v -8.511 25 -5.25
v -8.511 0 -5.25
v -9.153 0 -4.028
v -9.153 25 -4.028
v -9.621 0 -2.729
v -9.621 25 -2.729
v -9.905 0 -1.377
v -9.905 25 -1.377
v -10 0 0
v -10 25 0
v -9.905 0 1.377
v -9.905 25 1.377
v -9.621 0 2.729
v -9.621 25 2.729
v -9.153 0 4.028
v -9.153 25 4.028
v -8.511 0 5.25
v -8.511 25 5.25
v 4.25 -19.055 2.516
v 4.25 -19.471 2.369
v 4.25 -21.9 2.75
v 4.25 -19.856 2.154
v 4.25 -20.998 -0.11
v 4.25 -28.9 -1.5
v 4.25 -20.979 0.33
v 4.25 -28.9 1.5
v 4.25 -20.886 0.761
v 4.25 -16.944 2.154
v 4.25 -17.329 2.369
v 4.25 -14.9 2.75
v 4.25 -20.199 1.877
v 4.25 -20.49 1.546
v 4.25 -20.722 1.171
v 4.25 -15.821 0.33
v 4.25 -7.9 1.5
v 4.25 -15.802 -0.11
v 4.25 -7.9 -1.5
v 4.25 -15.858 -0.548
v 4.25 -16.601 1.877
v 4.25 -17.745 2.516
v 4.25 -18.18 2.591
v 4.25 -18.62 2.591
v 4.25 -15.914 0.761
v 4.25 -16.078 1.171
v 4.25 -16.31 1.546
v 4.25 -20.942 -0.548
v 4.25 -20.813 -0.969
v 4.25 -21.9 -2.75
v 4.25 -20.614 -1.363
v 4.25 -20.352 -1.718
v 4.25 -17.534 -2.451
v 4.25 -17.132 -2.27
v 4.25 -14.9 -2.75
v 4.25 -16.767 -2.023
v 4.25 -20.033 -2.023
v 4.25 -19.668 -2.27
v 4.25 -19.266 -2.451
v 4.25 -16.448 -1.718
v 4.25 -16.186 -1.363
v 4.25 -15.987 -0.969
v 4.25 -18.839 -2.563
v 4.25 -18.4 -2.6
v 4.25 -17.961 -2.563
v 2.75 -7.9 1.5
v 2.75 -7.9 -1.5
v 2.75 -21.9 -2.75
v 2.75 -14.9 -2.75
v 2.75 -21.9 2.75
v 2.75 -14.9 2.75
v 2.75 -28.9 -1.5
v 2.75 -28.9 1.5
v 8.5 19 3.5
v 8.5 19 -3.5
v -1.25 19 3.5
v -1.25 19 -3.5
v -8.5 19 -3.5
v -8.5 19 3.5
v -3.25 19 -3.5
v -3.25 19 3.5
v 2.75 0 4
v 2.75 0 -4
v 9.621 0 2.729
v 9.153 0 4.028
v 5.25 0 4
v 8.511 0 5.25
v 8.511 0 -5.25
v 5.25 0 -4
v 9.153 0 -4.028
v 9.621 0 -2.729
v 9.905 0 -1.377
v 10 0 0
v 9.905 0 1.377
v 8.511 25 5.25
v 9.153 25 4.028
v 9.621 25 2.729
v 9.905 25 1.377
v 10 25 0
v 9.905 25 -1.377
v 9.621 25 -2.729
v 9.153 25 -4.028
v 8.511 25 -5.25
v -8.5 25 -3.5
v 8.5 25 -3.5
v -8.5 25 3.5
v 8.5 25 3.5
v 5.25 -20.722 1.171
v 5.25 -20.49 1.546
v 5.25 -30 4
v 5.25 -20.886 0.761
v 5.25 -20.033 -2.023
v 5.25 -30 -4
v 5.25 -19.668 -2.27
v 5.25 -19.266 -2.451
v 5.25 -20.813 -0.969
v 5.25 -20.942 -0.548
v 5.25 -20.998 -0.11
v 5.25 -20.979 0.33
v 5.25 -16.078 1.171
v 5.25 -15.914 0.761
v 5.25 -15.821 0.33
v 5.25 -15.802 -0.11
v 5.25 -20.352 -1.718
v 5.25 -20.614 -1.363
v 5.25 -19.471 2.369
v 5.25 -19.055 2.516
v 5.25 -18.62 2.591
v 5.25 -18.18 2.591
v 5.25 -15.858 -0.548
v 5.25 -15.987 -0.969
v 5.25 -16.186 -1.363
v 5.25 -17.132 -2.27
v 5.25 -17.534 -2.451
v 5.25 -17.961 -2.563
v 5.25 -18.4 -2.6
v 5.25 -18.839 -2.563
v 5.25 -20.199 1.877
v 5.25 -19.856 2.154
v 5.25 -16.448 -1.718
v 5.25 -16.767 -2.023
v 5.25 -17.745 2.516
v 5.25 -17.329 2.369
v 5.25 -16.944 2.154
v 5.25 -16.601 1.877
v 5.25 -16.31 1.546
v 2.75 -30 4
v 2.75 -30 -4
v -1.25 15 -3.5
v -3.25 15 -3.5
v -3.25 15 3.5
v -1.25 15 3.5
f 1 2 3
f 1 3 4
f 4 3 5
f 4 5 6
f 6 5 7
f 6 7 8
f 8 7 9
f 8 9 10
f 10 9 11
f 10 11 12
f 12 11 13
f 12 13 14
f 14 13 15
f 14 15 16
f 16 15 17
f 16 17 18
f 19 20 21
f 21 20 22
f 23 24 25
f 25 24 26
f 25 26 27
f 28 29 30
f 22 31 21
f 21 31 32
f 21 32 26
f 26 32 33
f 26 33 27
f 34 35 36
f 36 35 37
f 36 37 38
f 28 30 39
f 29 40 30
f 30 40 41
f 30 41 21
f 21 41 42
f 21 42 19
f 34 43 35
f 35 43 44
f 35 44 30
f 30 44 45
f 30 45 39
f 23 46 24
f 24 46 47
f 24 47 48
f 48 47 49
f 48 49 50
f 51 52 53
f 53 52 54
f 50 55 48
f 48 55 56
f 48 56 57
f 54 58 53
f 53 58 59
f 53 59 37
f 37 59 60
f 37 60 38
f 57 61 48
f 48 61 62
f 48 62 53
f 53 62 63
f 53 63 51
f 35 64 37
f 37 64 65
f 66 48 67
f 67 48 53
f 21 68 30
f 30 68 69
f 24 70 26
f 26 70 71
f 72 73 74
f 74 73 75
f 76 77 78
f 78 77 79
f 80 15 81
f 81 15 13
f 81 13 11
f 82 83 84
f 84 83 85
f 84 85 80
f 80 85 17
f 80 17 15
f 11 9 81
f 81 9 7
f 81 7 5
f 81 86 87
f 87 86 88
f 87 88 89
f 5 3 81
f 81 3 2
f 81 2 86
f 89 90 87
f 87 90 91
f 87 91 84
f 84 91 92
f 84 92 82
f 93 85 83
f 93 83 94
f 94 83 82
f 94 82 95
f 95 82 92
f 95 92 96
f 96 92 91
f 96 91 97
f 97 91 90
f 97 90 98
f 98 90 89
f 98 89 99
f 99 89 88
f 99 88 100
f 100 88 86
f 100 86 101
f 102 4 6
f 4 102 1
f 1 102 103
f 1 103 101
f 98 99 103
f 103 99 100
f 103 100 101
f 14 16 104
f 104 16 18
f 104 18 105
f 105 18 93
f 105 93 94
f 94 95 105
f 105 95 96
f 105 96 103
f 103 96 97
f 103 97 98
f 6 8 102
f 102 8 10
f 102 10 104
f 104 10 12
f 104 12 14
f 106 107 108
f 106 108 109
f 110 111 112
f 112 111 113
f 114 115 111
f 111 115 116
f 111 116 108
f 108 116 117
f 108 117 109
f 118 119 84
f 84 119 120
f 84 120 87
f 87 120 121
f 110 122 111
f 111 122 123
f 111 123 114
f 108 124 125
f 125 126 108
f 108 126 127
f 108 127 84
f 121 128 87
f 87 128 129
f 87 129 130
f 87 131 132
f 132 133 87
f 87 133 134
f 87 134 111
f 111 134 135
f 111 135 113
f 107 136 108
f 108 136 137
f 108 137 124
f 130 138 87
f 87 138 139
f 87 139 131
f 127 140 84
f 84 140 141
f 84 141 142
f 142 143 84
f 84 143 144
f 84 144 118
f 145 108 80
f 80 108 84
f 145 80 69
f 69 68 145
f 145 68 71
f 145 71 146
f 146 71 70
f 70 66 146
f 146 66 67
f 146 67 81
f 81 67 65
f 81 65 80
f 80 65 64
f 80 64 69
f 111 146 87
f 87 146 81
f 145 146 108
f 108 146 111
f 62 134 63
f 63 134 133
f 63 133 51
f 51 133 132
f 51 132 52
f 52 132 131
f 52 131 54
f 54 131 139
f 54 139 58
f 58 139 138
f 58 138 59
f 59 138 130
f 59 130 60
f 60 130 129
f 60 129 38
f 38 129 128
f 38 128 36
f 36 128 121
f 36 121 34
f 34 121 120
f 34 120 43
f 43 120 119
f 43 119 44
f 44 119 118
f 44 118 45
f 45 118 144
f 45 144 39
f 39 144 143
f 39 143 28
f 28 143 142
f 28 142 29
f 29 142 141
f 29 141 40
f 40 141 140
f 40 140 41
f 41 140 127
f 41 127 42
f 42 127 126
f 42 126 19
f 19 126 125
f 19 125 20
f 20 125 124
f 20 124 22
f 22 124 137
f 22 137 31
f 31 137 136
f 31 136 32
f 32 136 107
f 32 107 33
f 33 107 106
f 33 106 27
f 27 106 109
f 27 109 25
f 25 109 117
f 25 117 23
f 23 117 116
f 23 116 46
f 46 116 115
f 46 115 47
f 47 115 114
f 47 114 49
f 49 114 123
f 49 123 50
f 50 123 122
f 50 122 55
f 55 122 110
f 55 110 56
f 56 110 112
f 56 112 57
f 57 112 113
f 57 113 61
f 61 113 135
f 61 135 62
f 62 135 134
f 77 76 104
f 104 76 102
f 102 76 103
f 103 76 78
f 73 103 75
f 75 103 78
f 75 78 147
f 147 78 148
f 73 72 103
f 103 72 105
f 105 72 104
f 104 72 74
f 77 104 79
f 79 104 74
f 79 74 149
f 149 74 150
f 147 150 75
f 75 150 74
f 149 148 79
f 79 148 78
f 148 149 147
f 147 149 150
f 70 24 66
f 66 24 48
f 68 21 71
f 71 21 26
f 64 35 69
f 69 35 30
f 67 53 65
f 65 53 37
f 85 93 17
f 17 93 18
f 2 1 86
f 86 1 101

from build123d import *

# Parameters (mm, degrees)
SKETCH3_R           = 10
BOSS_EXTRUDE1_DEPTH = 25
SKETCH4_W           = 2.5
SKETCH4_H           = 8
BOSS_EXTRUDE2_DEPTH = 30
CUT_EXTRUDE1_REACH  = 37.108
SKETCH5_R           = 2.6
SKETCH6_W           = 5.5
SKETCH6_H           = 21
CUT_EXTRUDE2_DEPTH  = 1.5
SKETCH7_W           = 17
SKETCH7_H           = 7
CUT_EXTRUDE3_DEPTH  = 6
SKETCH8_W           = 2
SKETCH8_H           = 7
CUT_EXTRUDE4_DEPTH  = 4
BOSS_EXTRUDE3_DEPTH = 1.5
CUT_EXTRUDE5_REACH  = 35.166


with BuildPart() as part:
    # Sketch3 → Boss-Extrude1 (new body)
    with BuildSketch(Plane(origin=(0, 0, 0), x_dir=(1, 0, 0), z_dir=(0, 1, 0))):
        with Locations(Location((0, 0, 0), (0, 0, 270))):
            Circle(SKETCH3_R)
    extrude(amount=BOSS_EXTRUDE1_DEPTH)

    # Sketch4 → Boss-Extrude2 (add)
    with BuildSketch(Plane(origin=(0, 0, 0), x_dir=(-1, 0, 0), z_dir=(0, -1, 0))):
        with Locations((-4, 0)):
            Rectangle(SKETCH4_W, SKETCH4_H)
    extrude(amount=BOSS_EXTRUDE2_DEPTH)

    # Sketch5 → Cut-Extrude1 (cut, up to next)
    with BuildSketch(Plane(origin=(5.25, 0, 0), x_dir=(0, 0, -1), z_dir=(1, 0, 0)), mode=Mode.PRIVATE) as cut_extrude1_sk1:
        with Locations((0, -18.4)):
            Circle(SKETCH5_R)
    cut_extrude1_tool1 = extrude(cut_extrude1_sk1.sketch, amount=-CUT_EXTRUDE1_REACH, mode=Mode.PRIVATE) & part.part
    add(cut_extrude1_tool1.solids().sort_by_distance((5.25, -18.4, 0))[0], mode=Mode.SUBTRACT)

    # Sketch6 → Cut-Extrude2 (cut)
    with BuildSketch(Plane.ZY.offset(-2.75)):
        with Locations((0, -18.4)):
            Rectangle(SKETCH6_W, SKETCH6_H)
    extrude(amount=-CUT_EXTRUDE2_DEPTH, mode=Mode.SUBTRACT)

    # Sketch7 → Cut-Extrude3 (cut)
    with BuildSketch(Plane(origin=(0, 25, 0), x_dir=(1, 0, 0), z_dir=(0, 1, 0))):
        Rectangle(SKETCH7_W, SKETCH7_H)
    extrude(amount=-CUT_EXTRUDE3_DEPTH, mode=Mode.SUBTRACT)

    # Sketch8 → Cut-Extrude4 (cut)
    with BuildSketch(Plane(origin=(0, 19, 0), x_dir=(1, 0, 0), z_dir=(0, 1, 0))):
        with Locations((-2.25, 0)):
            Rectangle(SKETCH8_W, SKETCH8_H)
    extrude(amount=-CUT_EXTRUDE4_DEPTH, mode=Mode.SUBTRACT)

    # Sketch9 → Boss-Extrude3 (add)
    with BuildSketch(Plane.ZY.offset(-4.25)):
        Polygon((-2.75, -28.9), (-2.75, -21.9), (-1.5, -28.9), align=None)
        Polygon((1.5, -28.9), (2.75, -28.9), (2.75, -21.9), align=None)
        Polygon((2.75, -7.9), (2.75, -14.9), (1.5, -7.9), align=None)
        Polygon((-1.5, -7.9), (-2.75, -7.9), (-2.75, -14.9), align=None)
    extrude(amount=BOSS_EXTRUDE3_DEPTH)

    # Sketch11 → Cut-Extrude5 (cut, up to next)
    with BuildSketch(Plane(origin=(0, 0, 0), x_dir=(-1, 0, 0), z_dir=(0, -1, 0)), mode=Mode.PRIVATE) as cut_extrude5_sk1:
        with BuildLine():
            Line((8.511022265, 5.25), (-8.511022265, 5.25))
            ThreePointArc((-8.511022265, 5.25), (0, 10), (8.511022265, 5.25))
        make_face()
    cut_extrude5_tool1 = extrude(cut_extrude5_sk1.sketch, amount=-CUT_EXTRUDE5_REACH, mode=Mode.PRIVATE) & part.part
    # Sketch11 → Cut-Extrude5 (cut, up to next)
    with BuildSketch(Plane(origin=(0, 0, 0), x_dir=(-1, 0, 0), z_dir=(0, -1, 0)), mode=Mode.PRIVATE) as cut_extrude5_sk2:
        with BuildLine():
            Line((8.511022265, -5.25), (-8.511022265, -5.25))
            ThreePointArc((-8.511022265, -5.25), (0, -10), (8.511022265, -5.25))
        make_face()
    cut_extrude5_tool2 = extrude(cut_extrude5_sk2.sketch, amount=-CUT_EXTRUDE5_REACH, mode=Mode.PRIVATE) & part.part
    add(cut_extrude5_tool1.solids().sort_by_distance((0, 0, -7.194917))[0], mode=Mode.SUBTRACT)
    add(cut_extrude5_tool2.solids().sort_by_distance((0, 0, 7.194917))[0], mode=Mode.SUBTRACT)


solid = part.part
